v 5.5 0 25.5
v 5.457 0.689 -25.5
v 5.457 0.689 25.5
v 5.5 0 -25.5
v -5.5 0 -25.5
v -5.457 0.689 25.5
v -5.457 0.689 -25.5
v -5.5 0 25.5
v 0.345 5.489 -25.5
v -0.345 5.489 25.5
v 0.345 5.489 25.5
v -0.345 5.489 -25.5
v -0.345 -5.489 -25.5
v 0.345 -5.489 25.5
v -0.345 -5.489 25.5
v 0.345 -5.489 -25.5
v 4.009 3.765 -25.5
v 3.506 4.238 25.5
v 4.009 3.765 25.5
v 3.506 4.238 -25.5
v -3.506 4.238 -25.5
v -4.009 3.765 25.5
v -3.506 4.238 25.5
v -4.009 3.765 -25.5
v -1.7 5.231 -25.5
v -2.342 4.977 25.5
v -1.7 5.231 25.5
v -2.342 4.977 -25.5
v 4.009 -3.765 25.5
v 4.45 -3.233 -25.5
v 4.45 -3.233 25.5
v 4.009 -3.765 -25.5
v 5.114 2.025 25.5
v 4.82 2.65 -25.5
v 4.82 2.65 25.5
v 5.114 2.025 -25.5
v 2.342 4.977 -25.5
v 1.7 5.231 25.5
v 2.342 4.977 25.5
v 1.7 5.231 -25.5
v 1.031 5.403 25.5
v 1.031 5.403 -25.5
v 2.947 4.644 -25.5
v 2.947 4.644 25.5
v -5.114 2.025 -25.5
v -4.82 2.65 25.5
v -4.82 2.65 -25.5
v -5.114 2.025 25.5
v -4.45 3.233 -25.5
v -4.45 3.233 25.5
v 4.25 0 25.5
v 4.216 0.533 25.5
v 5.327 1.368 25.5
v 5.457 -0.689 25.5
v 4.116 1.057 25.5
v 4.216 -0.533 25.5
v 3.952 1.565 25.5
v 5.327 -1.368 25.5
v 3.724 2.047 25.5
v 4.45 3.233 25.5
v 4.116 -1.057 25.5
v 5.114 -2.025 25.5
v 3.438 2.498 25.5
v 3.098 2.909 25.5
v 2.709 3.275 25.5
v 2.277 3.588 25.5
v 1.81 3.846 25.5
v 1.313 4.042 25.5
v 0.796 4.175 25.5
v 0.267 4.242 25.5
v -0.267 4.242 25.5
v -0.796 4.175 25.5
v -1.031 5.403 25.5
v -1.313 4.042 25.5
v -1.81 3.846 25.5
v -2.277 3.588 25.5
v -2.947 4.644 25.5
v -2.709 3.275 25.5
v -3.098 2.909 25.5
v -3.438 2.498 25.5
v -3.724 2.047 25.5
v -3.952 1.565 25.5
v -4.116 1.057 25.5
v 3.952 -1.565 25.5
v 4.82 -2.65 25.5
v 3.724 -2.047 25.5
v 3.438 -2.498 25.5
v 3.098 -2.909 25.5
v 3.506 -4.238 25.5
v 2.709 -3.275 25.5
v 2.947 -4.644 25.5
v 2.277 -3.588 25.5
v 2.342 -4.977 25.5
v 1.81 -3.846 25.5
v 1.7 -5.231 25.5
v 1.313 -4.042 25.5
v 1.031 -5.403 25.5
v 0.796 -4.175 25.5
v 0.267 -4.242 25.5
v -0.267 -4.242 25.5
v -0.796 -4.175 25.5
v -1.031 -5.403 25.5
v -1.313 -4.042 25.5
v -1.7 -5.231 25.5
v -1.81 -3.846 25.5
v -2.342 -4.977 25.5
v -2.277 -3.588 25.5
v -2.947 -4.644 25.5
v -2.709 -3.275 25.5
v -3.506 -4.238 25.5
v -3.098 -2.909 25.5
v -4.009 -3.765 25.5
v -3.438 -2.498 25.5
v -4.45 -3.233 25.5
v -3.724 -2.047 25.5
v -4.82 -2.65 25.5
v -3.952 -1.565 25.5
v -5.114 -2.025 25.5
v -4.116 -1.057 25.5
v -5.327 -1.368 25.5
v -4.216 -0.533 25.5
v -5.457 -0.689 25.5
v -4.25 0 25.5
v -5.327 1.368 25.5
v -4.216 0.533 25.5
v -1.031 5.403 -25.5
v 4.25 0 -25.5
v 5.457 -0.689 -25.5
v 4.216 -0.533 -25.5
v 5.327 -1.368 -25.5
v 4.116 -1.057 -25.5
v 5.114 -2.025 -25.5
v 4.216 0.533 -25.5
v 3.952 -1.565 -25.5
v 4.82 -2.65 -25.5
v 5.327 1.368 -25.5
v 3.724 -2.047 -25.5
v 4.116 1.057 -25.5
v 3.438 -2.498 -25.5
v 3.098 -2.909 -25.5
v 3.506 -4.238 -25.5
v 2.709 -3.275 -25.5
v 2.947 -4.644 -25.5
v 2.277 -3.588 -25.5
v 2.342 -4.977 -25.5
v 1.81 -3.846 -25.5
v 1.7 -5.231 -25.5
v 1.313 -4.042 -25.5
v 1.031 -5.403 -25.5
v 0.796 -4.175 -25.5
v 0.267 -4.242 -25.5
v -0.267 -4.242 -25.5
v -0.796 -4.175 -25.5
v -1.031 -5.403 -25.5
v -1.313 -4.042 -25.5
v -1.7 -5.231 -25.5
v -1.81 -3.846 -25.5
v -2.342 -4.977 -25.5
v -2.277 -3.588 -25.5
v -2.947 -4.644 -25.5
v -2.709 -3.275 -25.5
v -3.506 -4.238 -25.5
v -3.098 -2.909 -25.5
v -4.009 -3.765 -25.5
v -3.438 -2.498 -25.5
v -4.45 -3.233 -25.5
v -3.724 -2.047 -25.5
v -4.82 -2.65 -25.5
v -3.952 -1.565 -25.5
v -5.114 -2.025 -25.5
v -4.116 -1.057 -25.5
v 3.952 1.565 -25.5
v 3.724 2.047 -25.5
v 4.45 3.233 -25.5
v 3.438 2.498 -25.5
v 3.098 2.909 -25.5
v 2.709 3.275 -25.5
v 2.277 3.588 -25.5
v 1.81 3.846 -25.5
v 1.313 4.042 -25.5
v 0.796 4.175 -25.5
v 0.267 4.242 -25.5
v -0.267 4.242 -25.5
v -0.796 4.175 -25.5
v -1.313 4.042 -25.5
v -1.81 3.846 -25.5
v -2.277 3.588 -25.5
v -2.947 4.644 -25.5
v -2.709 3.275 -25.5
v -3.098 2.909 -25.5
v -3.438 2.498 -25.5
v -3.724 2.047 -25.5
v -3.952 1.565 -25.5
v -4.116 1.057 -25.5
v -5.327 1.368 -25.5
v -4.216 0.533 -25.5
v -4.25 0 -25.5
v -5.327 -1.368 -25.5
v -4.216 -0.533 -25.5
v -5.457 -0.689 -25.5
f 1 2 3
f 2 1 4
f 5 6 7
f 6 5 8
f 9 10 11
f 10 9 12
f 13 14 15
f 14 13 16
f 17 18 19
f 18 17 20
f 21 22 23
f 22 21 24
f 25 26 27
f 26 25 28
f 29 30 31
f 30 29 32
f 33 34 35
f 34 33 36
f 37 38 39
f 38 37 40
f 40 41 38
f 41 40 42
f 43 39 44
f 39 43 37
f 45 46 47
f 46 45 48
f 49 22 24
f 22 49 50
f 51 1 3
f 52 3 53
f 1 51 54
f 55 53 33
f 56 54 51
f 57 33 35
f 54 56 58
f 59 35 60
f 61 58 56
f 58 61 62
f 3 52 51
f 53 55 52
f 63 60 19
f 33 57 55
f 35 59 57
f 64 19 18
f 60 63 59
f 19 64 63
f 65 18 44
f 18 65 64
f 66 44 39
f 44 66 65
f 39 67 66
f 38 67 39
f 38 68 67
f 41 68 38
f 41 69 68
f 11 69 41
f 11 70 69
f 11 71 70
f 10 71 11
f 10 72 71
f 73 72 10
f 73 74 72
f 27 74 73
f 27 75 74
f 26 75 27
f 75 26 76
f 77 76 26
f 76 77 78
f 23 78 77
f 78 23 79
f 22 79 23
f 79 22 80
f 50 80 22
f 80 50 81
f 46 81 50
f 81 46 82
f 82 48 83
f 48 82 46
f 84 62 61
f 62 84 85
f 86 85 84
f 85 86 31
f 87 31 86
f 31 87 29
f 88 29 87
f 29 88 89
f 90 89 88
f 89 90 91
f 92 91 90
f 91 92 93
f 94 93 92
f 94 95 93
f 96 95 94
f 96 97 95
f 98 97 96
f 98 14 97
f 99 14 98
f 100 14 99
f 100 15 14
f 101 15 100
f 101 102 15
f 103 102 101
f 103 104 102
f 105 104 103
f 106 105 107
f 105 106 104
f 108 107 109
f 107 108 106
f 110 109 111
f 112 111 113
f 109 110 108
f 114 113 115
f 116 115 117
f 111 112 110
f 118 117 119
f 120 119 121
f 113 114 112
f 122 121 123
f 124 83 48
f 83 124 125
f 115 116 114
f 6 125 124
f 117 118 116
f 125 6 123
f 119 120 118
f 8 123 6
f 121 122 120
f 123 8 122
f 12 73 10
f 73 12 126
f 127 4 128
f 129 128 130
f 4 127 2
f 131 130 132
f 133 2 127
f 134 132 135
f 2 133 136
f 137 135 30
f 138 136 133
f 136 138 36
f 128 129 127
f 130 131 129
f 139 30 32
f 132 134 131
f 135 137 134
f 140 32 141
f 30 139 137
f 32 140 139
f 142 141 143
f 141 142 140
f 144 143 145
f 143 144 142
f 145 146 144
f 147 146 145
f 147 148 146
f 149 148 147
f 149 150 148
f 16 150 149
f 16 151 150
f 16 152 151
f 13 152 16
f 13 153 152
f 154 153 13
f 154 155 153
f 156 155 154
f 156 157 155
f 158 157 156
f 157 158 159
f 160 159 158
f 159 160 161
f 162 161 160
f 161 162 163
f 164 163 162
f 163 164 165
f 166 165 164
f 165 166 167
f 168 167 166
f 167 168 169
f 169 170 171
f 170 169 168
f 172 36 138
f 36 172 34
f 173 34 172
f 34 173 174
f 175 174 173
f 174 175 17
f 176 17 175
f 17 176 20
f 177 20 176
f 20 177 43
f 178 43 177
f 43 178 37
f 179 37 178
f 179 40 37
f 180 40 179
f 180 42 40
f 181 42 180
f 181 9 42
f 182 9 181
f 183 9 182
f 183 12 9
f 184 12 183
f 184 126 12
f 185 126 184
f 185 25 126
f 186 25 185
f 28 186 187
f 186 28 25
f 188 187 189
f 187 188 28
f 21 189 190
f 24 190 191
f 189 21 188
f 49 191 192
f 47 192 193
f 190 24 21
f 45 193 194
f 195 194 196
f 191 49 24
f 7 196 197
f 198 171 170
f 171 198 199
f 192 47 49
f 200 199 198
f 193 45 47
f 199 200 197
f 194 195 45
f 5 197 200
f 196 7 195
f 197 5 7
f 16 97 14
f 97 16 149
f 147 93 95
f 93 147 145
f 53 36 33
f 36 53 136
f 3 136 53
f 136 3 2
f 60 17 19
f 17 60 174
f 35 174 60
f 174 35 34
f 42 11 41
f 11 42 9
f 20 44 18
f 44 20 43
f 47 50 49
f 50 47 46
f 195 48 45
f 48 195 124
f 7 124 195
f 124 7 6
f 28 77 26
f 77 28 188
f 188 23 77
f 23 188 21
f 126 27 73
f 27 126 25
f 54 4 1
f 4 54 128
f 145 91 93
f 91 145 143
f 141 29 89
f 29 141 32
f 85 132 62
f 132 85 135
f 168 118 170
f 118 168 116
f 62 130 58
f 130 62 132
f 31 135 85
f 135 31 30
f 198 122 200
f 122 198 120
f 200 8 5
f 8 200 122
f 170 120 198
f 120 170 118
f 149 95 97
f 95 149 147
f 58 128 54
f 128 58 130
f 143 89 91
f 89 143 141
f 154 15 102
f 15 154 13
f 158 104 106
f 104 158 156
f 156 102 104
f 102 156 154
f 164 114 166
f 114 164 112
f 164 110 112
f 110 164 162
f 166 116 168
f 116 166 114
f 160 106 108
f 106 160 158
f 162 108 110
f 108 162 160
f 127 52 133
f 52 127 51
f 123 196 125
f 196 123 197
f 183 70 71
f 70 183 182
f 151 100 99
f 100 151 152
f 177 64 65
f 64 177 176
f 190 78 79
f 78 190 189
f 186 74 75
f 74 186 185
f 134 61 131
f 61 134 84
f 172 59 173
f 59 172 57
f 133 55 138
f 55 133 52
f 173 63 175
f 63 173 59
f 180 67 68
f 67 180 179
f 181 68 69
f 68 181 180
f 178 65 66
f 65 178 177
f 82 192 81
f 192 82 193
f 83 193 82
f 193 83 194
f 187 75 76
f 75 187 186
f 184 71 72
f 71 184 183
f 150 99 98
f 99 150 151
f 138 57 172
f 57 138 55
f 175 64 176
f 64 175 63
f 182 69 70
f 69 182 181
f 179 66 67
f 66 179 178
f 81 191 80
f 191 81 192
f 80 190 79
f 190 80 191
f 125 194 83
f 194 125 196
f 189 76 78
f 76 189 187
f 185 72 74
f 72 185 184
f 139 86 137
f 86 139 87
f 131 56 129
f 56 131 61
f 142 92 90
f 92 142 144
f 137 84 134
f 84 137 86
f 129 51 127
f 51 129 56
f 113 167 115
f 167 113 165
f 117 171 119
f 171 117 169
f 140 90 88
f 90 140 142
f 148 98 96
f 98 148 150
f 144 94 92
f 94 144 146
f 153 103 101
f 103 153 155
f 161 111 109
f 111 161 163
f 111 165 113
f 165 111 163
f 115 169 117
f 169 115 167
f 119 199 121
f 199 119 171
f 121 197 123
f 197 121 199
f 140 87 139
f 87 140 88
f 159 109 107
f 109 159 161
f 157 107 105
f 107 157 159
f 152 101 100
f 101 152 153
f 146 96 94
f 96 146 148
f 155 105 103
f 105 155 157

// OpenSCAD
$fn = 50;


difference() {
	union() {
		translate(v = [0, 0, -25.5000000000]) {
			cylinder(h = 51, r = 5.5000000000);
		}
	}
	union() {
		translate(v = [0, 0, -100.0000000000]) {
			cylinder(h = 200, r = 4.2500000000);
		}
	}
}
